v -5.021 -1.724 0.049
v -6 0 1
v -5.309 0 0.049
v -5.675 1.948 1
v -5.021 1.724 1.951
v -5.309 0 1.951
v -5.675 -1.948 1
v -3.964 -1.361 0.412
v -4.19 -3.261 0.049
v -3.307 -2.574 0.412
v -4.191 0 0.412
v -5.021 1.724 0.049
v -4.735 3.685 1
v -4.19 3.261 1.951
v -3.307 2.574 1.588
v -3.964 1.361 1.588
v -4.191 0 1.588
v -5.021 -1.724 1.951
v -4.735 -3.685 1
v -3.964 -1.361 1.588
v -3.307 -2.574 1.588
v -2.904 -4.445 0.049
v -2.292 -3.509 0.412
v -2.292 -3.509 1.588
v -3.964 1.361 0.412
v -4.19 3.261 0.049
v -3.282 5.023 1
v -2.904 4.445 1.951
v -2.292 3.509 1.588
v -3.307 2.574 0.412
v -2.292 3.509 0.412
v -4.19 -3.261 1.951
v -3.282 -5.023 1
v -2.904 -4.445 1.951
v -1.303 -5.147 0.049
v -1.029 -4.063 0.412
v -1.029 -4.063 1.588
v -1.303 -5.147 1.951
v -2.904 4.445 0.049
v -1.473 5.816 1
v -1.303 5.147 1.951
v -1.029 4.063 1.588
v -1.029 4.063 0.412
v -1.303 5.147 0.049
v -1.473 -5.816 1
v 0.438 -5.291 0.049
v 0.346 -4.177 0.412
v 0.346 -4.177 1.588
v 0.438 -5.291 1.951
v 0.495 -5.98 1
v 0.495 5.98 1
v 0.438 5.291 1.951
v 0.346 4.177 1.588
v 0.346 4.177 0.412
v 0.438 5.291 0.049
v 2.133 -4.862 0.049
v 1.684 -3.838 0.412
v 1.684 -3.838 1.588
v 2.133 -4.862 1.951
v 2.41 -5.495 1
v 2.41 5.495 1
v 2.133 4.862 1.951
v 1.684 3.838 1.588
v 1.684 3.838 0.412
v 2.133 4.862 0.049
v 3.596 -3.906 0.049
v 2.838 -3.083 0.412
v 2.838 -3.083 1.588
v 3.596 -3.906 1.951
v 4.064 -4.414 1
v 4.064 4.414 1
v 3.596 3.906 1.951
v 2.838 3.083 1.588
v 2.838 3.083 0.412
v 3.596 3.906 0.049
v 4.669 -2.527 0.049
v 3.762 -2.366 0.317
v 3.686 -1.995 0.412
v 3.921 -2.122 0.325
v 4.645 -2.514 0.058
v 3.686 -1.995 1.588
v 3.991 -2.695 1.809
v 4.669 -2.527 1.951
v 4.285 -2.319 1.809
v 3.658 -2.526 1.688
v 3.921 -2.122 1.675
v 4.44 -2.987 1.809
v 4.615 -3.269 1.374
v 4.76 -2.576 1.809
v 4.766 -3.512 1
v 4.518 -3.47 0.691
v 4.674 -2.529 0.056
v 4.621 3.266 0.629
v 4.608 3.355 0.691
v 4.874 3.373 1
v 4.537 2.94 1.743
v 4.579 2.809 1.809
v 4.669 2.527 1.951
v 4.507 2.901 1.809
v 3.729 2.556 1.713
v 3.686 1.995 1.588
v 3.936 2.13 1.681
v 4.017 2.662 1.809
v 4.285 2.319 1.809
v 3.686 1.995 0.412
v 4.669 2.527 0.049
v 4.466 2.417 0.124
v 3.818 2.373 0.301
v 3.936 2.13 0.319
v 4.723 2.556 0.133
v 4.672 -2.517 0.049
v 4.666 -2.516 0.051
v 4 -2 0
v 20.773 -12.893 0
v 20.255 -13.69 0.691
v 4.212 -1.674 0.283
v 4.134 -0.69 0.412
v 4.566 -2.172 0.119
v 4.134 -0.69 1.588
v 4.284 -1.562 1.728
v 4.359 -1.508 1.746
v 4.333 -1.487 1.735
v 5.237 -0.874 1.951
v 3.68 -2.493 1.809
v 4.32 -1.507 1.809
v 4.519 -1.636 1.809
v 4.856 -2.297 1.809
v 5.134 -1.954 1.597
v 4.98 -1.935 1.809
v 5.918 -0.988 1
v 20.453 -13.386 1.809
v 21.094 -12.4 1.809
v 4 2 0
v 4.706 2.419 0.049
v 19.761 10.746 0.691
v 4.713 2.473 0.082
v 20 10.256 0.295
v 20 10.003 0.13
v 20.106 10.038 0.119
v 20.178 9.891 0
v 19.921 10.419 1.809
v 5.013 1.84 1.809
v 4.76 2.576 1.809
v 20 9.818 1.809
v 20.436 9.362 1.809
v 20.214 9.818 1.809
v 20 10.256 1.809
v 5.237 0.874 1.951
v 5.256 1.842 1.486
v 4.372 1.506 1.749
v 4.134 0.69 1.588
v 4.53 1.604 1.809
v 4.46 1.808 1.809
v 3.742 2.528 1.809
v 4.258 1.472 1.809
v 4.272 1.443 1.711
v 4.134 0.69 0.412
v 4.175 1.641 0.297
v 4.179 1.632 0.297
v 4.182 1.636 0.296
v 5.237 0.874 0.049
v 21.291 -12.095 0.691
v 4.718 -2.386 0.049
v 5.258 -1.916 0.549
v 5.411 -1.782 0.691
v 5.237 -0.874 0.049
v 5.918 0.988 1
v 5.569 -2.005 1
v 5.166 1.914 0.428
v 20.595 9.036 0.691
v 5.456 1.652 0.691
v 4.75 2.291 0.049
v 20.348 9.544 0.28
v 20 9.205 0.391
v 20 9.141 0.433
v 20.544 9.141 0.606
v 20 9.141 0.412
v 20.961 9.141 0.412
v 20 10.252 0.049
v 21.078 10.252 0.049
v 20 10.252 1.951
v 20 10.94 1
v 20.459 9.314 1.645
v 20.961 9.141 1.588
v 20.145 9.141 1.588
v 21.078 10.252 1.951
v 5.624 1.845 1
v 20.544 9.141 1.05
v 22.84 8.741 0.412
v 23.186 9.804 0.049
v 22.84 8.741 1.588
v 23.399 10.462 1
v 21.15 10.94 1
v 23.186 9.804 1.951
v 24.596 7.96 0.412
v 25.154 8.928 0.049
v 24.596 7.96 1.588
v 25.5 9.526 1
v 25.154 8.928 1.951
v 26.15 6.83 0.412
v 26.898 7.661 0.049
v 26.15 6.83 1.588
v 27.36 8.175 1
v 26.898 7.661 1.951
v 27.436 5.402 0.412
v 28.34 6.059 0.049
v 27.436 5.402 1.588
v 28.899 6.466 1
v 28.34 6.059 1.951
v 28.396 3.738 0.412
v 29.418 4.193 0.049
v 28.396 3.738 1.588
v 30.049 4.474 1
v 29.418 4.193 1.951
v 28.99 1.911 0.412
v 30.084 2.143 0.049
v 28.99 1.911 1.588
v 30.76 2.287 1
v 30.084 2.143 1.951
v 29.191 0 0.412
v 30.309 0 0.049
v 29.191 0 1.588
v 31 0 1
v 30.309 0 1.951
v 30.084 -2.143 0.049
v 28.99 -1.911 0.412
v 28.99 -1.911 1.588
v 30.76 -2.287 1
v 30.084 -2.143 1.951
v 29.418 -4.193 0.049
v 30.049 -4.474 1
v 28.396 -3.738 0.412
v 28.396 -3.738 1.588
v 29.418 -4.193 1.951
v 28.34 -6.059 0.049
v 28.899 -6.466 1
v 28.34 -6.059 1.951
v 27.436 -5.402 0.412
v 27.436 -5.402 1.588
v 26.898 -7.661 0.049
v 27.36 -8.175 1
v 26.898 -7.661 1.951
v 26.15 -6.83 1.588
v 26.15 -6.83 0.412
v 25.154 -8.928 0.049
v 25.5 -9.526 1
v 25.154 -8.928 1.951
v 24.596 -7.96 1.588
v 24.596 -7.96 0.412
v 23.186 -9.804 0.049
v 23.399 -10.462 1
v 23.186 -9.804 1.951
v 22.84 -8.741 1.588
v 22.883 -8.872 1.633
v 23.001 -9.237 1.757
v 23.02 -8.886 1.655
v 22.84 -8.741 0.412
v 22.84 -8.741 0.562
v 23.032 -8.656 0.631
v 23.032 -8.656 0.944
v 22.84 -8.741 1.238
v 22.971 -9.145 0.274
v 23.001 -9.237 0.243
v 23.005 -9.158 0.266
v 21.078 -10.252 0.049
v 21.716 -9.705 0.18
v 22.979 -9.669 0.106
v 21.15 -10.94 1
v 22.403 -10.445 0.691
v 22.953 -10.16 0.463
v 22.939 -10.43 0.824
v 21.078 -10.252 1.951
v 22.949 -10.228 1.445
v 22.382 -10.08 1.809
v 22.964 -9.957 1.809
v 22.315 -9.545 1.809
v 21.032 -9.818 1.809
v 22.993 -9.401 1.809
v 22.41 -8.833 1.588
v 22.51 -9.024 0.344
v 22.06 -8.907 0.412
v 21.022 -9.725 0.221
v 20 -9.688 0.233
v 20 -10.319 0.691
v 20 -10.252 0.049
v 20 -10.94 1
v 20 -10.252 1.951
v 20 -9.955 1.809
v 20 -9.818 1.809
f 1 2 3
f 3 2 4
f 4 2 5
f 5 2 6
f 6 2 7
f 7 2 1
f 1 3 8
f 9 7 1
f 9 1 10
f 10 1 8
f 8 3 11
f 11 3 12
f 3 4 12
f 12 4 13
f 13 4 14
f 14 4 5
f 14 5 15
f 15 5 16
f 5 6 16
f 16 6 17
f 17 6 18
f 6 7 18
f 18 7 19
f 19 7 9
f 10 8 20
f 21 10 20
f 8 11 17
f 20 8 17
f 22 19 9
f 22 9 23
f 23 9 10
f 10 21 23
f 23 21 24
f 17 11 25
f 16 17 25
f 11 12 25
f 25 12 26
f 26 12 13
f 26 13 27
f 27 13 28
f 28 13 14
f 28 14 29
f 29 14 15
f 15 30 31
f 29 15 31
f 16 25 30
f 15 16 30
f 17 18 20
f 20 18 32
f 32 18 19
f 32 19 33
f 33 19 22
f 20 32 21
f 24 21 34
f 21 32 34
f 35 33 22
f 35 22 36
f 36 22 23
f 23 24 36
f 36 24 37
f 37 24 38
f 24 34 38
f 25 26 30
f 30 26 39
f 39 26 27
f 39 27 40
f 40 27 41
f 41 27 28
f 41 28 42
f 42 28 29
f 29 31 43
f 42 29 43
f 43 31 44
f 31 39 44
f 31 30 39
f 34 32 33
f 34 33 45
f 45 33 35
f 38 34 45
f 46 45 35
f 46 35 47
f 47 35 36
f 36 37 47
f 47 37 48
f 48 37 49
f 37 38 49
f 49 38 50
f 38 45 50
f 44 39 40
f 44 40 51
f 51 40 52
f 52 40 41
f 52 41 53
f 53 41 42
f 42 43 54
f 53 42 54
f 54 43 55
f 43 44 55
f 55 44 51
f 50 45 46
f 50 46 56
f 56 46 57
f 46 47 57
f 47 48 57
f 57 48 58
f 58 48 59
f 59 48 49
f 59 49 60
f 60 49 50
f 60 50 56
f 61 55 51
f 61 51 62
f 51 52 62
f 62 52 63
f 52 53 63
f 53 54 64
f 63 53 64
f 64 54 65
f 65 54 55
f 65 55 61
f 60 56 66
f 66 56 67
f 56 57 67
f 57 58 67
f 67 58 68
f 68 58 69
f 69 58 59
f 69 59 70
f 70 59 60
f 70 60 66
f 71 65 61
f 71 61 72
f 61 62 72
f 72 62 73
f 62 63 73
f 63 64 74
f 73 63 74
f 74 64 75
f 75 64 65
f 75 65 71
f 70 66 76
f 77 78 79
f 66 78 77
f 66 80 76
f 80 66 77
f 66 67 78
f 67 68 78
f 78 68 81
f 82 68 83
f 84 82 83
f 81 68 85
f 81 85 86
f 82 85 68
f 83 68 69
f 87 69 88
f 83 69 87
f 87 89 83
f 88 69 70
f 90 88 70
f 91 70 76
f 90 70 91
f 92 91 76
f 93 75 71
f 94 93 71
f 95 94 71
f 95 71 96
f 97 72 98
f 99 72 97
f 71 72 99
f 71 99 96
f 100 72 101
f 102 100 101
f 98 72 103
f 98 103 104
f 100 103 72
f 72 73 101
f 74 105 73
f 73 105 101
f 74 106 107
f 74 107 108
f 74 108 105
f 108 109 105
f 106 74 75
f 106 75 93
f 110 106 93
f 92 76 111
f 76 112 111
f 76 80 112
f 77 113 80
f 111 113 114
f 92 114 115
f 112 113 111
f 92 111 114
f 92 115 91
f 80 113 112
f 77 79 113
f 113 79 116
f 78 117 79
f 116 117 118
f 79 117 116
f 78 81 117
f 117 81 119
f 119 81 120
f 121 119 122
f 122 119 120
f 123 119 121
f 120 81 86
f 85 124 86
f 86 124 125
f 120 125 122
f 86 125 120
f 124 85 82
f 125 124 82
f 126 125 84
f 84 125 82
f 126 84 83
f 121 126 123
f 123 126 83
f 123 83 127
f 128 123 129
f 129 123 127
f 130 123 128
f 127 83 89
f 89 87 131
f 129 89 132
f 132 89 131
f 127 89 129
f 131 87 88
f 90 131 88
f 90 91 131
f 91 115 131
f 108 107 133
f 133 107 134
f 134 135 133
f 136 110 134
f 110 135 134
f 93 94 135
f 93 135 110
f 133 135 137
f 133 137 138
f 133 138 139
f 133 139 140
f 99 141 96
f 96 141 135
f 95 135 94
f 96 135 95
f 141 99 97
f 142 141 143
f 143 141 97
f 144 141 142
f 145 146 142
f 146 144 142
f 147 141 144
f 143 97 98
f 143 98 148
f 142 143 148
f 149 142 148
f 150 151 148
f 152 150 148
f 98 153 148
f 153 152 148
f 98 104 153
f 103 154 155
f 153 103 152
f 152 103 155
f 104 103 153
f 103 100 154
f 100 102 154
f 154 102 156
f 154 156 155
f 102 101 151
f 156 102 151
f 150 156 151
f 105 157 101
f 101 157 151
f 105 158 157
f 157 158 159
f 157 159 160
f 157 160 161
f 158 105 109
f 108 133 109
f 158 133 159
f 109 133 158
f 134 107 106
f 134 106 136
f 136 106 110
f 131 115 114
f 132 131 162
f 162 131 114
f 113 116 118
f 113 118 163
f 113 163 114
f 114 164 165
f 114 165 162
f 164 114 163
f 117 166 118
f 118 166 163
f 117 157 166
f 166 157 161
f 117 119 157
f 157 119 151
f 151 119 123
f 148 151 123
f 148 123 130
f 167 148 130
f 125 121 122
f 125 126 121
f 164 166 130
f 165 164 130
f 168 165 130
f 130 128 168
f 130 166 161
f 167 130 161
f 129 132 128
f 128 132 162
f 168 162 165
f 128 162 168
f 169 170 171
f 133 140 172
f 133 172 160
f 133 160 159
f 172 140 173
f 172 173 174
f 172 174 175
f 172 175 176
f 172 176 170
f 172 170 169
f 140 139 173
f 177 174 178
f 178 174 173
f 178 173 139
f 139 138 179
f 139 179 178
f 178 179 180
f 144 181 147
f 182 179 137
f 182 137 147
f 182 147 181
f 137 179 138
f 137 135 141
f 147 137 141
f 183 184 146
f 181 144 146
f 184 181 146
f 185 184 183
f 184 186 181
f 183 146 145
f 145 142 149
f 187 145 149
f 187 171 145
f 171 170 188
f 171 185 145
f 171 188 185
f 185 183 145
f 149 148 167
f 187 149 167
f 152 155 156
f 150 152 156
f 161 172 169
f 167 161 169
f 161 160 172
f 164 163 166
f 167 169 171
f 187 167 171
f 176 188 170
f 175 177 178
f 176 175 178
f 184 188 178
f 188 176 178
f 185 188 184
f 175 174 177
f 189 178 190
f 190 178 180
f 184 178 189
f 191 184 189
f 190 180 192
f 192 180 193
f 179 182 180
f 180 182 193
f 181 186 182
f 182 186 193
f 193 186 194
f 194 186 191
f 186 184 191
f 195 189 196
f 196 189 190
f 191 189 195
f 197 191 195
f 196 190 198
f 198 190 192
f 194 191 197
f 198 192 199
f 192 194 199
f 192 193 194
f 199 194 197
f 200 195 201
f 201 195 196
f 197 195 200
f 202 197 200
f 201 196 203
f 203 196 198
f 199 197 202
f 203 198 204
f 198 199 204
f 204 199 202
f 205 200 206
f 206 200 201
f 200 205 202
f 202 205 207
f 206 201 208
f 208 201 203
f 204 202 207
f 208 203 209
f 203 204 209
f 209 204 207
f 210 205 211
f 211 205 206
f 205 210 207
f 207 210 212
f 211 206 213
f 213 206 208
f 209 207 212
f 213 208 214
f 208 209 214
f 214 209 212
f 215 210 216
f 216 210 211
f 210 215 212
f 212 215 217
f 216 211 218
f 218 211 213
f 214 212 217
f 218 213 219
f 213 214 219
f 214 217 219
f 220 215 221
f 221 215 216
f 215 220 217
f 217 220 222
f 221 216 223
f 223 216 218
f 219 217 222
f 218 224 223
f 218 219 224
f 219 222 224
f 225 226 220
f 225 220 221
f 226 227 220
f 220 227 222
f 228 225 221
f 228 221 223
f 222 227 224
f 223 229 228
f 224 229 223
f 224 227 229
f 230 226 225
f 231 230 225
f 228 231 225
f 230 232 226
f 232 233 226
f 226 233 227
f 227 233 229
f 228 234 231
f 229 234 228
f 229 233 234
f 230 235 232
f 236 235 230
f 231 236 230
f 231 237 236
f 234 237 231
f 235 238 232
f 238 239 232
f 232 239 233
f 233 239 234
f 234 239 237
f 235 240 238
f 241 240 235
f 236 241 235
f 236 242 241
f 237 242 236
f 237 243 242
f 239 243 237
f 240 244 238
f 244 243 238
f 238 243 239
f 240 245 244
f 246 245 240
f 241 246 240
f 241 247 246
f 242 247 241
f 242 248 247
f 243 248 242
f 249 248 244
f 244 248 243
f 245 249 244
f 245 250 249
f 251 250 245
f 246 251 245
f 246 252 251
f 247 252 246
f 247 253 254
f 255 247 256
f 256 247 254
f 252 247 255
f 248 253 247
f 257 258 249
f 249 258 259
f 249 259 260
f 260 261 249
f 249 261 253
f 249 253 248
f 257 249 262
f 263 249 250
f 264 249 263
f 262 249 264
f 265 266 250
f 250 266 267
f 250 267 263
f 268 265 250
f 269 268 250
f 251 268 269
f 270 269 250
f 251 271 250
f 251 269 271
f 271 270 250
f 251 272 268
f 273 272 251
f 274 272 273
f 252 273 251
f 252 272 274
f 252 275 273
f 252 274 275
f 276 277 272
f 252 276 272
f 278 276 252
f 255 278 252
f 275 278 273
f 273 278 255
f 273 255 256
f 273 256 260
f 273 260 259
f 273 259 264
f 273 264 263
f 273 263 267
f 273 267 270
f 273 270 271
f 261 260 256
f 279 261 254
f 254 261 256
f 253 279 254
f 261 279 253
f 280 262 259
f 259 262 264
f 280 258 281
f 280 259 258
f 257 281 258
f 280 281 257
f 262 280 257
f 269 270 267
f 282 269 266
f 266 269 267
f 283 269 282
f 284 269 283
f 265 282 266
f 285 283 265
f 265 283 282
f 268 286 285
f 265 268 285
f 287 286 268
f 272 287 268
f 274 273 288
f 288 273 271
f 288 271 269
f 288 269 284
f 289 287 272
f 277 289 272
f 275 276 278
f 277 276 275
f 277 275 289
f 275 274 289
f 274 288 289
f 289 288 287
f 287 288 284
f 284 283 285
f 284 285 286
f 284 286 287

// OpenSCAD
height = 2;
thickness = 2;
small_ring_radius = 5;
hook_radius = 10;
length = 20;


translate([0,0,thickness/2])
rotate_extrude()
translate([small_ring_radius, 0, 0])
circle(r = thickness/2);


translate([length, 0, 0]) {
	difference() {
		translate([0,0,thickness/2])
		rotate_extrude()
		translate([hook_radius, 0, 0])
		circle(r = thickness/2);
		translate([-20, -20, 0]) {cube([20, 40, height]);}
		translate([-7, -9, thickness/2]) {
			rotate([0, 90, -3]) {
				cylinder(10, r=thickness/2);
			}
		}

	}
}



translate([4, 4-thickness, thickness/2]) {
	rotate([0, 90, 26]) {
		cylinder(length-2, r=thickness/2);
	}
}

translate([4, -(4-thickness), thickness/2]) {
	rotate([0, 90, -33]) {
		cylinder(length, r=thickness/2);
	}
}
